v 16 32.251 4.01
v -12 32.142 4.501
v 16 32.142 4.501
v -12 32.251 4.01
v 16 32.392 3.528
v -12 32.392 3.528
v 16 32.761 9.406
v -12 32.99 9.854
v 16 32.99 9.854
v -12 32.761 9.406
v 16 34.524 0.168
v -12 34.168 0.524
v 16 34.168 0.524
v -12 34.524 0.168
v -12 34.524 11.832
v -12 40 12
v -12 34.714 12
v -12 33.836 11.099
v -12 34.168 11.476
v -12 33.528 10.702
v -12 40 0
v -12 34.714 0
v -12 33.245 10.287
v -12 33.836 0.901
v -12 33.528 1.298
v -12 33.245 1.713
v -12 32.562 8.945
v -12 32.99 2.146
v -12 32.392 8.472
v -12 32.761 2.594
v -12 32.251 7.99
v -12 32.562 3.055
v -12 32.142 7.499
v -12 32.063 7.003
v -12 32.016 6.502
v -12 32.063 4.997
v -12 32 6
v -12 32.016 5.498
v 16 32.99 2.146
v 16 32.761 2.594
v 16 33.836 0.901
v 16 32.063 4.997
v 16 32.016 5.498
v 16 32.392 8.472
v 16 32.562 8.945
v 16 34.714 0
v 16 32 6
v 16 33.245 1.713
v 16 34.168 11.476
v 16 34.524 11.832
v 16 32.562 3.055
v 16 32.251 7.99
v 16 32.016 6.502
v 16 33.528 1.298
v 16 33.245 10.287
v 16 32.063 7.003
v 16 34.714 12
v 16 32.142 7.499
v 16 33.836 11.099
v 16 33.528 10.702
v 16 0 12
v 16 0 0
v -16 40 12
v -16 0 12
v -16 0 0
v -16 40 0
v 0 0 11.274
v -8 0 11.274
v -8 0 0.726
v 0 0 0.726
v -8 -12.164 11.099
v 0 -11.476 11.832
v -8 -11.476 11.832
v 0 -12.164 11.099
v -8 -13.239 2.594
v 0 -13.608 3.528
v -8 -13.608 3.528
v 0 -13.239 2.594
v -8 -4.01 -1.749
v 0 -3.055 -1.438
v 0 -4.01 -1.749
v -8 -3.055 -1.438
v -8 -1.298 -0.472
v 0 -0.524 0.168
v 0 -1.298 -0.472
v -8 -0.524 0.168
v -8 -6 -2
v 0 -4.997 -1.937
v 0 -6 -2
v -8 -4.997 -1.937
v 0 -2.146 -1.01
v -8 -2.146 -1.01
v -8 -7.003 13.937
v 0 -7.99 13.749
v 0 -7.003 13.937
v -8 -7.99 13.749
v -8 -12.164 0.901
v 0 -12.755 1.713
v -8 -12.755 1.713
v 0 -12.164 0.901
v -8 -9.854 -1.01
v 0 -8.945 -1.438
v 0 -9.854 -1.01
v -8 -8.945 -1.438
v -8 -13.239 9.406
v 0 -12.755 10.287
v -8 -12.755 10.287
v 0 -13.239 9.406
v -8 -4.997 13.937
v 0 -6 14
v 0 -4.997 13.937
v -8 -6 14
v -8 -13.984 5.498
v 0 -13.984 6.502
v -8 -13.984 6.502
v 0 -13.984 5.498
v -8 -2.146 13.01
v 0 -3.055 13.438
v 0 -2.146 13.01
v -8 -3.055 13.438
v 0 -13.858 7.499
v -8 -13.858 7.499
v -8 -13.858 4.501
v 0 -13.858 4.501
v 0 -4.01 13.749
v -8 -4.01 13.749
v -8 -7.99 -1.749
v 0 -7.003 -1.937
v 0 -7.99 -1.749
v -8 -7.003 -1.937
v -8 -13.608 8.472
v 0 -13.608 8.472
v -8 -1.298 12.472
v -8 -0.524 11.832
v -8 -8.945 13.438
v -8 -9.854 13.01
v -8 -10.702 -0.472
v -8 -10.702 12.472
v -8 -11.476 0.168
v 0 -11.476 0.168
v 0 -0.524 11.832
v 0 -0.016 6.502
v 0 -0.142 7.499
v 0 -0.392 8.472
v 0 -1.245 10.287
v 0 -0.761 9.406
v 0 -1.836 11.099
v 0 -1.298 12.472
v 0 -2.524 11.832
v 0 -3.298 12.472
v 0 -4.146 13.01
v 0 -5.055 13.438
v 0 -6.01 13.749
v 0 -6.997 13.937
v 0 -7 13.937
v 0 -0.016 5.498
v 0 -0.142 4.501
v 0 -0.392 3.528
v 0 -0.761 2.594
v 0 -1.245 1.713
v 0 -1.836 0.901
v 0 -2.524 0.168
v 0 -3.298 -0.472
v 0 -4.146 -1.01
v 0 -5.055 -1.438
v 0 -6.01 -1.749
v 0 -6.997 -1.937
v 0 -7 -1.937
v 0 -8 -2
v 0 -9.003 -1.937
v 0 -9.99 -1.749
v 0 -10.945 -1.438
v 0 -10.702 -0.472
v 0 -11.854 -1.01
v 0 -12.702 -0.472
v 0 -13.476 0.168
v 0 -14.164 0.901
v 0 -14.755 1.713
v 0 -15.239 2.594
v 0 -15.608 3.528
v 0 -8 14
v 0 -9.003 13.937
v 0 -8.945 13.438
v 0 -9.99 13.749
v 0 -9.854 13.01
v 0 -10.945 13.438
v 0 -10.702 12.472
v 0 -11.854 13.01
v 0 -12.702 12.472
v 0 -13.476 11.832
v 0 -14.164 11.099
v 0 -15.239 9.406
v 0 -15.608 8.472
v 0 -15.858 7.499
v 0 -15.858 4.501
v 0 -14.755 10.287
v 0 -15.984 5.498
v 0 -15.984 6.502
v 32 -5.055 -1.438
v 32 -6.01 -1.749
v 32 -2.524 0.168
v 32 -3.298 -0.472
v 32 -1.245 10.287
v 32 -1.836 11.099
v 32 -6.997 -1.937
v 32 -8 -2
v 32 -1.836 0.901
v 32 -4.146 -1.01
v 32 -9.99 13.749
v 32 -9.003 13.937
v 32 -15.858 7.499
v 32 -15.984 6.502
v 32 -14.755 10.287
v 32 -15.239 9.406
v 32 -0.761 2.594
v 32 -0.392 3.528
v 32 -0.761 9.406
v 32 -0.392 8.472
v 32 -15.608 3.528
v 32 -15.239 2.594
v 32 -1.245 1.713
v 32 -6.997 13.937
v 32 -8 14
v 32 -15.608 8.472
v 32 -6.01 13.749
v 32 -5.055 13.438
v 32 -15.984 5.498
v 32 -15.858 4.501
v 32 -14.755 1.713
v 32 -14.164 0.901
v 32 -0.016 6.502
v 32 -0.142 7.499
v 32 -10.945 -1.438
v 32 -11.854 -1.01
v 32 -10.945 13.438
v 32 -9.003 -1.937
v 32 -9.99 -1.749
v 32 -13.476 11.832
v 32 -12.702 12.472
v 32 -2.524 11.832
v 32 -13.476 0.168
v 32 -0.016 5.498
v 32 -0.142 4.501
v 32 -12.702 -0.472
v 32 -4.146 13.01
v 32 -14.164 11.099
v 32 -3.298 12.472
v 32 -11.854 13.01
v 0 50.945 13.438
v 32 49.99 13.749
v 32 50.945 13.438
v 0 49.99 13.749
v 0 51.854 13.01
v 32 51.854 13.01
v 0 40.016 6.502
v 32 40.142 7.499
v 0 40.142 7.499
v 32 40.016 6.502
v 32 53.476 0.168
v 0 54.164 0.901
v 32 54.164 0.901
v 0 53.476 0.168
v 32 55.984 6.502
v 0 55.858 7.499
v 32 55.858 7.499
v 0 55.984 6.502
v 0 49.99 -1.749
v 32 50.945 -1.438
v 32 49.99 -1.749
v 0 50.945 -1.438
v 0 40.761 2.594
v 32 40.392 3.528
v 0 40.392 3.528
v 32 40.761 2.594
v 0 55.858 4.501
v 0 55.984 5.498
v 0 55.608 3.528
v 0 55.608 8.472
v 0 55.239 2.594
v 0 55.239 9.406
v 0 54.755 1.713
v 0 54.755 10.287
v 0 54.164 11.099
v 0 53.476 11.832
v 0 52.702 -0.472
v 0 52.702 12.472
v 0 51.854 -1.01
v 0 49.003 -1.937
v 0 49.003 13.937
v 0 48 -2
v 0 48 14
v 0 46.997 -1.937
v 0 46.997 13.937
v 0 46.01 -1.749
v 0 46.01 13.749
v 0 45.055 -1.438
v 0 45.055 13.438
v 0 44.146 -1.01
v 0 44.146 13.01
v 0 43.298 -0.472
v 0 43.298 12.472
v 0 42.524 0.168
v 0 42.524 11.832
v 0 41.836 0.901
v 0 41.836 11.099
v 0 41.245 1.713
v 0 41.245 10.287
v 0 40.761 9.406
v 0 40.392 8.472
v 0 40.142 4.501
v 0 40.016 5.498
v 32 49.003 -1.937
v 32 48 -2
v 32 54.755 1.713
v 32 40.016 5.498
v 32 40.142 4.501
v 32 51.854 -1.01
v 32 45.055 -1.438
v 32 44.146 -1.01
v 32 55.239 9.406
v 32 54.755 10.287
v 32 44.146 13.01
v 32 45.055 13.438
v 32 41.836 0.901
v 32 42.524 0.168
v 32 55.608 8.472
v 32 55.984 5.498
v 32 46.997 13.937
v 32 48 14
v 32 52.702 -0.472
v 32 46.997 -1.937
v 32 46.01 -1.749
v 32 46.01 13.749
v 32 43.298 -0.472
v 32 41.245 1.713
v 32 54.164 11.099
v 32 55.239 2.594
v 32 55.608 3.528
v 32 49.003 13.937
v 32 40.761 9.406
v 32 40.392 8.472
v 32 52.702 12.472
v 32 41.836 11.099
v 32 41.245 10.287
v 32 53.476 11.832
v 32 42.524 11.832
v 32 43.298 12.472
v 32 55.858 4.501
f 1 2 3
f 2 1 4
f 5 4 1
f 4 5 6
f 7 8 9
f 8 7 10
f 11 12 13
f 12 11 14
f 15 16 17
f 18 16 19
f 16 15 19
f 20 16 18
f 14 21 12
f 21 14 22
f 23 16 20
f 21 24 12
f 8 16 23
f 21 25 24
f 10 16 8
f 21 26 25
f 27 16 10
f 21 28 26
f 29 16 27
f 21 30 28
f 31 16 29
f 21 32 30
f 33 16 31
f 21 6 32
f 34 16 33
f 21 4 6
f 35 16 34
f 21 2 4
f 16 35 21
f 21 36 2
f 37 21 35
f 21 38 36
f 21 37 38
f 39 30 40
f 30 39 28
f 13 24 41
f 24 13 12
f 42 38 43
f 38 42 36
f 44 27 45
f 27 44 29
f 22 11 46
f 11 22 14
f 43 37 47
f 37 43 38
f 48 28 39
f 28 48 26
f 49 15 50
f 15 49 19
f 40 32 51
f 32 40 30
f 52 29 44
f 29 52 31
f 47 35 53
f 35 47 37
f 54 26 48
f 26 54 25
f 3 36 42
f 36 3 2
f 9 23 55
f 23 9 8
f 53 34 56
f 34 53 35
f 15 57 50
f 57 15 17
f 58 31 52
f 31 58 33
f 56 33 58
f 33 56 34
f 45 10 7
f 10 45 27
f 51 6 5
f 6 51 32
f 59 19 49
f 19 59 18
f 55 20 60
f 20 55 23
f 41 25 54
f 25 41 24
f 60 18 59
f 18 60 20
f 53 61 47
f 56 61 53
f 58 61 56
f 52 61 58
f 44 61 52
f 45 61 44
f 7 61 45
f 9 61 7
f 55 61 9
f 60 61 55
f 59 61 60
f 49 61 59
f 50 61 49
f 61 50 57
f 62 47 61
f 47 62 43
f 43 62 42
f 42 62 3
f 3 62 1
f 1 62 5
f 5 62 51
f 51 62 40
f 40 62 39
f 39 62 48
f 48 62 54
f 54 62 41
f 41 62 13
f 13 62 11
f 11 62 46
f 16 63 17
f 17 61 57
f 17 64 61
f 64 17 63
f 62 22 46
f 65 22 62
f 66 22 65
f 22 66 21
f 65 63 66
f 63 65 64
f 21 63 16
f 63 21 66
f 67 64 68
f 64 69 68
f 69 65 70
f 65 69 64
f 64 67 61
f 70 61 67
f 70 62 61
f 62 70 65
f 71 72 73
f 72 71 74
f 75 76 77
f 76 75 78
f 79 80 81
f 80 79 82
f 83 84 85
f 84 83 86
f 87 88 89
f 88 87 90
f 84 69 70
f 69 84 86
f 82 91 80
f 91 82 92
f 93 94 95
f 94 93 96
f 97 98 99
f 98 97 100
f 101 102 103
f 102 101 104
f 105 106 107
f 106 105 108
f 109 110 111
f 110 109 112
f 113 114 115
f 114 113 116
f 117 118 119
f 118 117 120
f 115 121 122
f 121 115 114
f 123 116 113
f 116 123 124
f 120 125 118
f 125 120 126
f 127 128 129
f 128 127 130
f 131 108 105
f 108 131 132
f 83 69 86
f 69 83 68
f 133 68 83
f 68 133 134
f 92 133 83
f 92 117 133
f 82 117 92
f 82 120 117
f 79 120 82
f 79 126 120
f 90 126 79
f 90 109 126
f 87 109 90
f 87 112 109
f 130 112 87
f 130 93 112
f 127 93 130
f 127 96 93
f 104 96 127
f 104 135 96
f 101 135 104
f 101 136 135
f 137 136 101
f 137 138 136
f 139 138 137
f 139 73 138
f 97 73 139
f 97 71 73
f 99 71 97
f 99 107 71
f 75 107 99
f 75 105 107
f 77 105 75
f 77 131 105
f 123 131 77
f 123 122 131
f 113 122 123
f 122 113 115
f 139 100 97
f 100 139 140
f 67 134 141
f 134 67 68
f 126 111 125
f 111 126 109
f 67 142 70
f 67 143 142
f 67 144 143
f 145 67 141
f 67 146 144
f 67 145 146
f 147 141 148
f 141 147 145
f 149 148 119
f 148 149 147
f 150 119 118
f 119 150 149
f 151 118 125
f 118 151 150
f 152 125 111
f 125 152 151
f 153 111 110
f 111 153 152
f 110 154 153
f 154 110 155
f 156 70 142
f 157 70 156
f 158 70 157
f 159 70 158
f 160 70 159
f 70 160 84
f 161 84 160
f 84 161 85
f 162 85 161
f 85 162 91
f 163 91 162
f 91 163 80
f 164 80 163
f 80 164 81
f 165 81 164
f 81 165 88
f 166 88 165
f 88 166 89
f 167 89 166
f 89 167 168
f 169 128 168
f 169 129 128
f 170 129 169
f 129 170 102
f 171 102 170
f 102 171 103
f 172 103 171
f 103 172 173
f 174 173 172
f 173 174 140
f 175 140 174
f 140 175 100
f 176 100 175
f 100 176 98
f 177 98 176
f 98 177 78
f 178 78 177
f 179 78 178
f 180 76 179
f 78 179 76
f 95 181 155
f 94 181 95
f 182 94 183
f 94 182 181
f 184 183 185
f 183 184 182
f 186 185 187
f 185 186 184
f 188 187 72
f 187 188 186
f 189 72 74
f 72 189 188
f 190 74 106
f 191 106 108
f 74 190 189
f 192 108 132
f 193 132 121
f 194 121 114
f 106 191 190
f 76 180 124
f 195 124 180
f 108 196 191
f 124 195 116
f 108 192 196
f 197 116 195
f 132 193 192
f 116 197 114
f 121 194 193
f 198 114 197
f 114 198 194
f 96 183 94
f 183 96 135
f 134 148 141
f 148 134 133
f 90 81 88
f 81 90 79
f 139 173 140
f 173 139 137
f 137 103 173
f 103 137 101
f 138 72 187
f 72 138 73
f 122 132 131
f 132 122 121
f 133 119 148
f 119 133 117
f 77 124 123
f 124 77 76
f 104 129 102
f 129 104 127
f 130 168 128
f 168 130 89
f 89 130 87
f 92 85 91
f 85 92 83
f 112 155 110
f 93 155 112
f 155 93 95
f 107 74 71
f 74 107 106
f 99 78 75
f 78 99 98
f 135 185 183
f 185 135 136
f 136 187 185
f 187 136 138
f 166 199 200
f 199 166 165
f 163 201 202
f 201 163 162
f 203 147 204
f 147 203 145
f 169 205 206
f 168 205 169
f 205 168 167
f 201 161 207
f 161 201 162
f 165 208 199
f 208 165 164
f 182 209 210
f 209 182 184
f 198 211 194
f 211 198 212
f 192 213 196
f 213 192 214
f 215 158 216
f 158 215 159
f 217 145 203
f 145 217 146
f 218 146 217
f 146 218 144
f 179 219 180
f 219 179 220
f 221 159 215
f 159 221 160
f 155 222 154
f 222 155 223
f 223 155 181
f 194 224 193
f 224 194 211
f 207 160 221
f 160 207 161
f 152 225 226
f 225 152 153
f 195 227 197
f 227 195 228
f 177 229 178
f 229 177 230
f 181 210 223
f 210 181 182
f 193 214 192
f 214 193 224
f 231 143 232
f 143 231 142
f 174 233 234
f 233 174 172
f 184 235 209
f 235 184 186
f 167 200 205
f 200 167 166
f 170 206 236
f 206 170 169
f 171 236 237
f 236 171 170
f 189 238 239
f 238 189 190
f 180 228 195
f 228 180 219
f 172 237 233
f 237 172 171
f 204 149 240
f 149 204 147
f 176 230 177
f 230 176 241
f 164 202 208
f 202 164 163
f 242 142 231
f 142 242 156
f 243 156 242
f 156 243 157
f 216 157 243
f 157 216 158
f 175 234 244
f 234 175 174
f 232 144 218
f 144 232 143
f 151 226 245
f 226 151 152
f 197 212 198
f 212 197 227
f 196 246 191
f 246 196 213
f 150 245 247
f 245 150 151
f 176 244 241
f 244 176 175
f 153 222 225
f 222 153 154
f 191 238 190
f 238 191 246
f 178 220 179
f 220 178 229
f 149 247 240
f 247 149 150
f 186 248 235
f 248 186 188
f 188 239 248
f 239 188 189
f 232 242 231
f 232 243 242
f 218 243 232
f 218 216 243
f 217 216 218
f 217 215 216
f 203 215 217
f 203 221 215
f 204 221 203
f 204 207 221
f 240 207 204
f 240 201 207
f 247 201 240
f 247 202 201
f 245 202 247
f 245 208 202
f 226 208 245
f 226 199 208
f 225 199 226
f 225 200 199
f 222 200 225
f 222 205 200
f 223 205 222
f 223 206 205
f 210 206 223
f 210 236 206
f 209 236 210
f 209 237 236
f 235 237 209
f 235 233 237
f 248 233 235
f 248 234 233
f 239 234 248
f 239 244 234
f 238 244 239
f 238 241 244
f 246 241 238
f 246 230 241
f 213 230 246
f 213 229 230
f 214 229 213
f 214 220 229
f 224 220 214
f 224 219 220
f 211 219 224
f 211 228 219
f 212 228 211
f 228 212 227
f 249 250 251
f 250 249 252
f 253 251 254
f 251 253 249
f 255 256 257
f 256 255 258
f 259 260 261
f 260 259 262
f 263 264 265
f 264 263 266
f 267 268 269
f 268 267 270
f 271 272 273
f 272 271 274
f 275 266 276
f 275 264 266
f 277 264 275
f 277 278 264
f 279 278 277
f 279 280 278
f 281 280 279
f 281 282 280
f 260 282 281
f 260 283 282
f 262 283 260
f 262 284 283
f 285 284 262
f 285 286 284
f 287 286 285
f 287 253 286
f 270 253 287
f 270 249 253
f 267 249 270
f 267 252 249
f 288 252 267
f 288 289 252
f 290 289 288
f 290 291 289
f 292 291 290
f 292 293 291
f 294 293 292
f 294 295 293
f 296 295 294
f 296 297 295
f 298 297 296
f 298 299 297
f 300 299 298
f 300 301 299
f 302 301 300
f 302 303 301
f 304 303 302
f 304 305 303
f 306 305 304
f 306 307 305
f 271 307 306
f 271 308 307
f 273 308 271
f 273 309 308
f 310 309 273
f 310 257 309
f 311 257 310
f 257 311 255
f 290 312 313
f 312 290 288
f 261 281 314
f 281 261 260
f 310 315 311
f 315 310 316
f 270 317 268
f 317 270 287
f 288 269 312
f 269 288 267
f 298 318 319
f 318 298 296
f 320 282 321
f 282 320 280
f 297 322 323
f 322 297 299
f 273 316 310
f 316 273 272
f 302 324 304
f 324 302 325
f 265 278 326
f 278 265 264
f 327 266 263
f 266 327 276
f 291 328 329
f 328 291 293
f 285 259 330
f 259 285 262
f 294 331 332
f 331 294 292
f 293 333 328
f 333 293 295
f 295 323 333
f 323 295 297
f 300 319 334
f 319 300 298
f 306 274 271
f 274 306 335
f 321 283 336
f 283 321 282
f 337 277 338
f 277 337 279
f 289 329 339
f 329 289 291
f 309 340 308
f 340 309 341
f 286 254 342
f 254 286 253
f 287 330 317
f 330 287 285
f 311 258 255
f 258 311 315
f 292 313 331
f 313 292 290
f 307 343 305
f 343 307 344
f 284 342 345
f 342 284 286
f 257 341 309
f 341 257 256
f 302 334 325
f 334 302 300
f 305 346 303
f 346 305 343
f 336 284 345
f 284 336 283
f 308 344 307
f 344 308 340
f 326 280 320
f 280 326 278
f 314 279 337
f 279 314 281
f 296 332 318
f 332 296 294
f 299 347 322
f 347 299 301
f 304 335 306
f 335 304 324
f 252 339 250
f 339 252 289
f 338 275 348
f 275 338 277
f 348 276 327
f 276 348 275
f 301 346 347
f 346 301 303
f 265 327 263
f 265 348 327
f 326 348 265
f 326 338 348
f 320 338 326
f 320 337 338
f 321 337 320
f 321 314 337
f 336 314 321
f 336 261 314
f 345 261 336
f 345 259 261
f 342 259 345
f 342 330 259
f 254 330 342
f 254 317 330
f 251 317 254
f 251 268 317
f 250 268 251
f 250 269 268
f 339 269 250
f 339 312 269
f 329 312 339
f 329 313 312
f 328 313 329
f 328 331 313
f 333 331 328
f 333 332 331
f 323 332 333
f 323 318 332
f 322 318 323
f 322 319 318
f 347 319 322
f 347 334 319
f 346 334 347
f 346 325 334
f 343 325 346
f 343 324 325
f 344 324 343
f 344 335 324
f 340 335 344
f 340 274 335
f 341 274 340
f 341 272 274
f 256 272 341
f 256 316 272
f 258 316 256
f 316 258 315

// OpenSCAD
// Define parameters for the components
module cylindrical_joint_A() {
    cylinder(h = 8, r = 8, $fn = 50); // Short cylinder with height 8 and radius 8
}

module wavy_block_B() {
    difference() {
        cube([32, 40, 12]); // Flat rectangular block
        // Add four rounded wave-like protrusions
        for (i = [0, 1, 2, 3]) {
            translate([(i * 8) + 4, 40, 6])
                rotate([0, 90, 0])
                cylinder(h = 14, r = 8, $fn = 100);
        }
    }
}

module long_cylindrical_connector_C() {
    cylinder(h = 32, r = 8, $fn = 50); // Longer cylinder with height 32 and radius 8
}

// Assemble the model based on the positional relationships
module flexible_coupling_model() {
    union() {
        // Position cylindrical_joint_A perpendicularly to the side of wavy_block_B
        translate([-8, -6, 6])
            rotate([0, 90, 0])
            cylindrical_joint_A();

        // Create wavy_block_B
        translate([-16, 0, 0])
            wavy_block_B();

        // Position two long_cylindrical_connector_C pieces symmetrically and attach them to opposing sides of wavy_block_B
        translate([0, -8, 6])
            rotate([0, 90, 0])
            long_cylindrical_connector_C();
        translate([0, 48, 6])
            rotate([0, 90, 0])
            long_cylindrical_connector_C();
    }
}

// Render the model
flexible_coupling_model();
